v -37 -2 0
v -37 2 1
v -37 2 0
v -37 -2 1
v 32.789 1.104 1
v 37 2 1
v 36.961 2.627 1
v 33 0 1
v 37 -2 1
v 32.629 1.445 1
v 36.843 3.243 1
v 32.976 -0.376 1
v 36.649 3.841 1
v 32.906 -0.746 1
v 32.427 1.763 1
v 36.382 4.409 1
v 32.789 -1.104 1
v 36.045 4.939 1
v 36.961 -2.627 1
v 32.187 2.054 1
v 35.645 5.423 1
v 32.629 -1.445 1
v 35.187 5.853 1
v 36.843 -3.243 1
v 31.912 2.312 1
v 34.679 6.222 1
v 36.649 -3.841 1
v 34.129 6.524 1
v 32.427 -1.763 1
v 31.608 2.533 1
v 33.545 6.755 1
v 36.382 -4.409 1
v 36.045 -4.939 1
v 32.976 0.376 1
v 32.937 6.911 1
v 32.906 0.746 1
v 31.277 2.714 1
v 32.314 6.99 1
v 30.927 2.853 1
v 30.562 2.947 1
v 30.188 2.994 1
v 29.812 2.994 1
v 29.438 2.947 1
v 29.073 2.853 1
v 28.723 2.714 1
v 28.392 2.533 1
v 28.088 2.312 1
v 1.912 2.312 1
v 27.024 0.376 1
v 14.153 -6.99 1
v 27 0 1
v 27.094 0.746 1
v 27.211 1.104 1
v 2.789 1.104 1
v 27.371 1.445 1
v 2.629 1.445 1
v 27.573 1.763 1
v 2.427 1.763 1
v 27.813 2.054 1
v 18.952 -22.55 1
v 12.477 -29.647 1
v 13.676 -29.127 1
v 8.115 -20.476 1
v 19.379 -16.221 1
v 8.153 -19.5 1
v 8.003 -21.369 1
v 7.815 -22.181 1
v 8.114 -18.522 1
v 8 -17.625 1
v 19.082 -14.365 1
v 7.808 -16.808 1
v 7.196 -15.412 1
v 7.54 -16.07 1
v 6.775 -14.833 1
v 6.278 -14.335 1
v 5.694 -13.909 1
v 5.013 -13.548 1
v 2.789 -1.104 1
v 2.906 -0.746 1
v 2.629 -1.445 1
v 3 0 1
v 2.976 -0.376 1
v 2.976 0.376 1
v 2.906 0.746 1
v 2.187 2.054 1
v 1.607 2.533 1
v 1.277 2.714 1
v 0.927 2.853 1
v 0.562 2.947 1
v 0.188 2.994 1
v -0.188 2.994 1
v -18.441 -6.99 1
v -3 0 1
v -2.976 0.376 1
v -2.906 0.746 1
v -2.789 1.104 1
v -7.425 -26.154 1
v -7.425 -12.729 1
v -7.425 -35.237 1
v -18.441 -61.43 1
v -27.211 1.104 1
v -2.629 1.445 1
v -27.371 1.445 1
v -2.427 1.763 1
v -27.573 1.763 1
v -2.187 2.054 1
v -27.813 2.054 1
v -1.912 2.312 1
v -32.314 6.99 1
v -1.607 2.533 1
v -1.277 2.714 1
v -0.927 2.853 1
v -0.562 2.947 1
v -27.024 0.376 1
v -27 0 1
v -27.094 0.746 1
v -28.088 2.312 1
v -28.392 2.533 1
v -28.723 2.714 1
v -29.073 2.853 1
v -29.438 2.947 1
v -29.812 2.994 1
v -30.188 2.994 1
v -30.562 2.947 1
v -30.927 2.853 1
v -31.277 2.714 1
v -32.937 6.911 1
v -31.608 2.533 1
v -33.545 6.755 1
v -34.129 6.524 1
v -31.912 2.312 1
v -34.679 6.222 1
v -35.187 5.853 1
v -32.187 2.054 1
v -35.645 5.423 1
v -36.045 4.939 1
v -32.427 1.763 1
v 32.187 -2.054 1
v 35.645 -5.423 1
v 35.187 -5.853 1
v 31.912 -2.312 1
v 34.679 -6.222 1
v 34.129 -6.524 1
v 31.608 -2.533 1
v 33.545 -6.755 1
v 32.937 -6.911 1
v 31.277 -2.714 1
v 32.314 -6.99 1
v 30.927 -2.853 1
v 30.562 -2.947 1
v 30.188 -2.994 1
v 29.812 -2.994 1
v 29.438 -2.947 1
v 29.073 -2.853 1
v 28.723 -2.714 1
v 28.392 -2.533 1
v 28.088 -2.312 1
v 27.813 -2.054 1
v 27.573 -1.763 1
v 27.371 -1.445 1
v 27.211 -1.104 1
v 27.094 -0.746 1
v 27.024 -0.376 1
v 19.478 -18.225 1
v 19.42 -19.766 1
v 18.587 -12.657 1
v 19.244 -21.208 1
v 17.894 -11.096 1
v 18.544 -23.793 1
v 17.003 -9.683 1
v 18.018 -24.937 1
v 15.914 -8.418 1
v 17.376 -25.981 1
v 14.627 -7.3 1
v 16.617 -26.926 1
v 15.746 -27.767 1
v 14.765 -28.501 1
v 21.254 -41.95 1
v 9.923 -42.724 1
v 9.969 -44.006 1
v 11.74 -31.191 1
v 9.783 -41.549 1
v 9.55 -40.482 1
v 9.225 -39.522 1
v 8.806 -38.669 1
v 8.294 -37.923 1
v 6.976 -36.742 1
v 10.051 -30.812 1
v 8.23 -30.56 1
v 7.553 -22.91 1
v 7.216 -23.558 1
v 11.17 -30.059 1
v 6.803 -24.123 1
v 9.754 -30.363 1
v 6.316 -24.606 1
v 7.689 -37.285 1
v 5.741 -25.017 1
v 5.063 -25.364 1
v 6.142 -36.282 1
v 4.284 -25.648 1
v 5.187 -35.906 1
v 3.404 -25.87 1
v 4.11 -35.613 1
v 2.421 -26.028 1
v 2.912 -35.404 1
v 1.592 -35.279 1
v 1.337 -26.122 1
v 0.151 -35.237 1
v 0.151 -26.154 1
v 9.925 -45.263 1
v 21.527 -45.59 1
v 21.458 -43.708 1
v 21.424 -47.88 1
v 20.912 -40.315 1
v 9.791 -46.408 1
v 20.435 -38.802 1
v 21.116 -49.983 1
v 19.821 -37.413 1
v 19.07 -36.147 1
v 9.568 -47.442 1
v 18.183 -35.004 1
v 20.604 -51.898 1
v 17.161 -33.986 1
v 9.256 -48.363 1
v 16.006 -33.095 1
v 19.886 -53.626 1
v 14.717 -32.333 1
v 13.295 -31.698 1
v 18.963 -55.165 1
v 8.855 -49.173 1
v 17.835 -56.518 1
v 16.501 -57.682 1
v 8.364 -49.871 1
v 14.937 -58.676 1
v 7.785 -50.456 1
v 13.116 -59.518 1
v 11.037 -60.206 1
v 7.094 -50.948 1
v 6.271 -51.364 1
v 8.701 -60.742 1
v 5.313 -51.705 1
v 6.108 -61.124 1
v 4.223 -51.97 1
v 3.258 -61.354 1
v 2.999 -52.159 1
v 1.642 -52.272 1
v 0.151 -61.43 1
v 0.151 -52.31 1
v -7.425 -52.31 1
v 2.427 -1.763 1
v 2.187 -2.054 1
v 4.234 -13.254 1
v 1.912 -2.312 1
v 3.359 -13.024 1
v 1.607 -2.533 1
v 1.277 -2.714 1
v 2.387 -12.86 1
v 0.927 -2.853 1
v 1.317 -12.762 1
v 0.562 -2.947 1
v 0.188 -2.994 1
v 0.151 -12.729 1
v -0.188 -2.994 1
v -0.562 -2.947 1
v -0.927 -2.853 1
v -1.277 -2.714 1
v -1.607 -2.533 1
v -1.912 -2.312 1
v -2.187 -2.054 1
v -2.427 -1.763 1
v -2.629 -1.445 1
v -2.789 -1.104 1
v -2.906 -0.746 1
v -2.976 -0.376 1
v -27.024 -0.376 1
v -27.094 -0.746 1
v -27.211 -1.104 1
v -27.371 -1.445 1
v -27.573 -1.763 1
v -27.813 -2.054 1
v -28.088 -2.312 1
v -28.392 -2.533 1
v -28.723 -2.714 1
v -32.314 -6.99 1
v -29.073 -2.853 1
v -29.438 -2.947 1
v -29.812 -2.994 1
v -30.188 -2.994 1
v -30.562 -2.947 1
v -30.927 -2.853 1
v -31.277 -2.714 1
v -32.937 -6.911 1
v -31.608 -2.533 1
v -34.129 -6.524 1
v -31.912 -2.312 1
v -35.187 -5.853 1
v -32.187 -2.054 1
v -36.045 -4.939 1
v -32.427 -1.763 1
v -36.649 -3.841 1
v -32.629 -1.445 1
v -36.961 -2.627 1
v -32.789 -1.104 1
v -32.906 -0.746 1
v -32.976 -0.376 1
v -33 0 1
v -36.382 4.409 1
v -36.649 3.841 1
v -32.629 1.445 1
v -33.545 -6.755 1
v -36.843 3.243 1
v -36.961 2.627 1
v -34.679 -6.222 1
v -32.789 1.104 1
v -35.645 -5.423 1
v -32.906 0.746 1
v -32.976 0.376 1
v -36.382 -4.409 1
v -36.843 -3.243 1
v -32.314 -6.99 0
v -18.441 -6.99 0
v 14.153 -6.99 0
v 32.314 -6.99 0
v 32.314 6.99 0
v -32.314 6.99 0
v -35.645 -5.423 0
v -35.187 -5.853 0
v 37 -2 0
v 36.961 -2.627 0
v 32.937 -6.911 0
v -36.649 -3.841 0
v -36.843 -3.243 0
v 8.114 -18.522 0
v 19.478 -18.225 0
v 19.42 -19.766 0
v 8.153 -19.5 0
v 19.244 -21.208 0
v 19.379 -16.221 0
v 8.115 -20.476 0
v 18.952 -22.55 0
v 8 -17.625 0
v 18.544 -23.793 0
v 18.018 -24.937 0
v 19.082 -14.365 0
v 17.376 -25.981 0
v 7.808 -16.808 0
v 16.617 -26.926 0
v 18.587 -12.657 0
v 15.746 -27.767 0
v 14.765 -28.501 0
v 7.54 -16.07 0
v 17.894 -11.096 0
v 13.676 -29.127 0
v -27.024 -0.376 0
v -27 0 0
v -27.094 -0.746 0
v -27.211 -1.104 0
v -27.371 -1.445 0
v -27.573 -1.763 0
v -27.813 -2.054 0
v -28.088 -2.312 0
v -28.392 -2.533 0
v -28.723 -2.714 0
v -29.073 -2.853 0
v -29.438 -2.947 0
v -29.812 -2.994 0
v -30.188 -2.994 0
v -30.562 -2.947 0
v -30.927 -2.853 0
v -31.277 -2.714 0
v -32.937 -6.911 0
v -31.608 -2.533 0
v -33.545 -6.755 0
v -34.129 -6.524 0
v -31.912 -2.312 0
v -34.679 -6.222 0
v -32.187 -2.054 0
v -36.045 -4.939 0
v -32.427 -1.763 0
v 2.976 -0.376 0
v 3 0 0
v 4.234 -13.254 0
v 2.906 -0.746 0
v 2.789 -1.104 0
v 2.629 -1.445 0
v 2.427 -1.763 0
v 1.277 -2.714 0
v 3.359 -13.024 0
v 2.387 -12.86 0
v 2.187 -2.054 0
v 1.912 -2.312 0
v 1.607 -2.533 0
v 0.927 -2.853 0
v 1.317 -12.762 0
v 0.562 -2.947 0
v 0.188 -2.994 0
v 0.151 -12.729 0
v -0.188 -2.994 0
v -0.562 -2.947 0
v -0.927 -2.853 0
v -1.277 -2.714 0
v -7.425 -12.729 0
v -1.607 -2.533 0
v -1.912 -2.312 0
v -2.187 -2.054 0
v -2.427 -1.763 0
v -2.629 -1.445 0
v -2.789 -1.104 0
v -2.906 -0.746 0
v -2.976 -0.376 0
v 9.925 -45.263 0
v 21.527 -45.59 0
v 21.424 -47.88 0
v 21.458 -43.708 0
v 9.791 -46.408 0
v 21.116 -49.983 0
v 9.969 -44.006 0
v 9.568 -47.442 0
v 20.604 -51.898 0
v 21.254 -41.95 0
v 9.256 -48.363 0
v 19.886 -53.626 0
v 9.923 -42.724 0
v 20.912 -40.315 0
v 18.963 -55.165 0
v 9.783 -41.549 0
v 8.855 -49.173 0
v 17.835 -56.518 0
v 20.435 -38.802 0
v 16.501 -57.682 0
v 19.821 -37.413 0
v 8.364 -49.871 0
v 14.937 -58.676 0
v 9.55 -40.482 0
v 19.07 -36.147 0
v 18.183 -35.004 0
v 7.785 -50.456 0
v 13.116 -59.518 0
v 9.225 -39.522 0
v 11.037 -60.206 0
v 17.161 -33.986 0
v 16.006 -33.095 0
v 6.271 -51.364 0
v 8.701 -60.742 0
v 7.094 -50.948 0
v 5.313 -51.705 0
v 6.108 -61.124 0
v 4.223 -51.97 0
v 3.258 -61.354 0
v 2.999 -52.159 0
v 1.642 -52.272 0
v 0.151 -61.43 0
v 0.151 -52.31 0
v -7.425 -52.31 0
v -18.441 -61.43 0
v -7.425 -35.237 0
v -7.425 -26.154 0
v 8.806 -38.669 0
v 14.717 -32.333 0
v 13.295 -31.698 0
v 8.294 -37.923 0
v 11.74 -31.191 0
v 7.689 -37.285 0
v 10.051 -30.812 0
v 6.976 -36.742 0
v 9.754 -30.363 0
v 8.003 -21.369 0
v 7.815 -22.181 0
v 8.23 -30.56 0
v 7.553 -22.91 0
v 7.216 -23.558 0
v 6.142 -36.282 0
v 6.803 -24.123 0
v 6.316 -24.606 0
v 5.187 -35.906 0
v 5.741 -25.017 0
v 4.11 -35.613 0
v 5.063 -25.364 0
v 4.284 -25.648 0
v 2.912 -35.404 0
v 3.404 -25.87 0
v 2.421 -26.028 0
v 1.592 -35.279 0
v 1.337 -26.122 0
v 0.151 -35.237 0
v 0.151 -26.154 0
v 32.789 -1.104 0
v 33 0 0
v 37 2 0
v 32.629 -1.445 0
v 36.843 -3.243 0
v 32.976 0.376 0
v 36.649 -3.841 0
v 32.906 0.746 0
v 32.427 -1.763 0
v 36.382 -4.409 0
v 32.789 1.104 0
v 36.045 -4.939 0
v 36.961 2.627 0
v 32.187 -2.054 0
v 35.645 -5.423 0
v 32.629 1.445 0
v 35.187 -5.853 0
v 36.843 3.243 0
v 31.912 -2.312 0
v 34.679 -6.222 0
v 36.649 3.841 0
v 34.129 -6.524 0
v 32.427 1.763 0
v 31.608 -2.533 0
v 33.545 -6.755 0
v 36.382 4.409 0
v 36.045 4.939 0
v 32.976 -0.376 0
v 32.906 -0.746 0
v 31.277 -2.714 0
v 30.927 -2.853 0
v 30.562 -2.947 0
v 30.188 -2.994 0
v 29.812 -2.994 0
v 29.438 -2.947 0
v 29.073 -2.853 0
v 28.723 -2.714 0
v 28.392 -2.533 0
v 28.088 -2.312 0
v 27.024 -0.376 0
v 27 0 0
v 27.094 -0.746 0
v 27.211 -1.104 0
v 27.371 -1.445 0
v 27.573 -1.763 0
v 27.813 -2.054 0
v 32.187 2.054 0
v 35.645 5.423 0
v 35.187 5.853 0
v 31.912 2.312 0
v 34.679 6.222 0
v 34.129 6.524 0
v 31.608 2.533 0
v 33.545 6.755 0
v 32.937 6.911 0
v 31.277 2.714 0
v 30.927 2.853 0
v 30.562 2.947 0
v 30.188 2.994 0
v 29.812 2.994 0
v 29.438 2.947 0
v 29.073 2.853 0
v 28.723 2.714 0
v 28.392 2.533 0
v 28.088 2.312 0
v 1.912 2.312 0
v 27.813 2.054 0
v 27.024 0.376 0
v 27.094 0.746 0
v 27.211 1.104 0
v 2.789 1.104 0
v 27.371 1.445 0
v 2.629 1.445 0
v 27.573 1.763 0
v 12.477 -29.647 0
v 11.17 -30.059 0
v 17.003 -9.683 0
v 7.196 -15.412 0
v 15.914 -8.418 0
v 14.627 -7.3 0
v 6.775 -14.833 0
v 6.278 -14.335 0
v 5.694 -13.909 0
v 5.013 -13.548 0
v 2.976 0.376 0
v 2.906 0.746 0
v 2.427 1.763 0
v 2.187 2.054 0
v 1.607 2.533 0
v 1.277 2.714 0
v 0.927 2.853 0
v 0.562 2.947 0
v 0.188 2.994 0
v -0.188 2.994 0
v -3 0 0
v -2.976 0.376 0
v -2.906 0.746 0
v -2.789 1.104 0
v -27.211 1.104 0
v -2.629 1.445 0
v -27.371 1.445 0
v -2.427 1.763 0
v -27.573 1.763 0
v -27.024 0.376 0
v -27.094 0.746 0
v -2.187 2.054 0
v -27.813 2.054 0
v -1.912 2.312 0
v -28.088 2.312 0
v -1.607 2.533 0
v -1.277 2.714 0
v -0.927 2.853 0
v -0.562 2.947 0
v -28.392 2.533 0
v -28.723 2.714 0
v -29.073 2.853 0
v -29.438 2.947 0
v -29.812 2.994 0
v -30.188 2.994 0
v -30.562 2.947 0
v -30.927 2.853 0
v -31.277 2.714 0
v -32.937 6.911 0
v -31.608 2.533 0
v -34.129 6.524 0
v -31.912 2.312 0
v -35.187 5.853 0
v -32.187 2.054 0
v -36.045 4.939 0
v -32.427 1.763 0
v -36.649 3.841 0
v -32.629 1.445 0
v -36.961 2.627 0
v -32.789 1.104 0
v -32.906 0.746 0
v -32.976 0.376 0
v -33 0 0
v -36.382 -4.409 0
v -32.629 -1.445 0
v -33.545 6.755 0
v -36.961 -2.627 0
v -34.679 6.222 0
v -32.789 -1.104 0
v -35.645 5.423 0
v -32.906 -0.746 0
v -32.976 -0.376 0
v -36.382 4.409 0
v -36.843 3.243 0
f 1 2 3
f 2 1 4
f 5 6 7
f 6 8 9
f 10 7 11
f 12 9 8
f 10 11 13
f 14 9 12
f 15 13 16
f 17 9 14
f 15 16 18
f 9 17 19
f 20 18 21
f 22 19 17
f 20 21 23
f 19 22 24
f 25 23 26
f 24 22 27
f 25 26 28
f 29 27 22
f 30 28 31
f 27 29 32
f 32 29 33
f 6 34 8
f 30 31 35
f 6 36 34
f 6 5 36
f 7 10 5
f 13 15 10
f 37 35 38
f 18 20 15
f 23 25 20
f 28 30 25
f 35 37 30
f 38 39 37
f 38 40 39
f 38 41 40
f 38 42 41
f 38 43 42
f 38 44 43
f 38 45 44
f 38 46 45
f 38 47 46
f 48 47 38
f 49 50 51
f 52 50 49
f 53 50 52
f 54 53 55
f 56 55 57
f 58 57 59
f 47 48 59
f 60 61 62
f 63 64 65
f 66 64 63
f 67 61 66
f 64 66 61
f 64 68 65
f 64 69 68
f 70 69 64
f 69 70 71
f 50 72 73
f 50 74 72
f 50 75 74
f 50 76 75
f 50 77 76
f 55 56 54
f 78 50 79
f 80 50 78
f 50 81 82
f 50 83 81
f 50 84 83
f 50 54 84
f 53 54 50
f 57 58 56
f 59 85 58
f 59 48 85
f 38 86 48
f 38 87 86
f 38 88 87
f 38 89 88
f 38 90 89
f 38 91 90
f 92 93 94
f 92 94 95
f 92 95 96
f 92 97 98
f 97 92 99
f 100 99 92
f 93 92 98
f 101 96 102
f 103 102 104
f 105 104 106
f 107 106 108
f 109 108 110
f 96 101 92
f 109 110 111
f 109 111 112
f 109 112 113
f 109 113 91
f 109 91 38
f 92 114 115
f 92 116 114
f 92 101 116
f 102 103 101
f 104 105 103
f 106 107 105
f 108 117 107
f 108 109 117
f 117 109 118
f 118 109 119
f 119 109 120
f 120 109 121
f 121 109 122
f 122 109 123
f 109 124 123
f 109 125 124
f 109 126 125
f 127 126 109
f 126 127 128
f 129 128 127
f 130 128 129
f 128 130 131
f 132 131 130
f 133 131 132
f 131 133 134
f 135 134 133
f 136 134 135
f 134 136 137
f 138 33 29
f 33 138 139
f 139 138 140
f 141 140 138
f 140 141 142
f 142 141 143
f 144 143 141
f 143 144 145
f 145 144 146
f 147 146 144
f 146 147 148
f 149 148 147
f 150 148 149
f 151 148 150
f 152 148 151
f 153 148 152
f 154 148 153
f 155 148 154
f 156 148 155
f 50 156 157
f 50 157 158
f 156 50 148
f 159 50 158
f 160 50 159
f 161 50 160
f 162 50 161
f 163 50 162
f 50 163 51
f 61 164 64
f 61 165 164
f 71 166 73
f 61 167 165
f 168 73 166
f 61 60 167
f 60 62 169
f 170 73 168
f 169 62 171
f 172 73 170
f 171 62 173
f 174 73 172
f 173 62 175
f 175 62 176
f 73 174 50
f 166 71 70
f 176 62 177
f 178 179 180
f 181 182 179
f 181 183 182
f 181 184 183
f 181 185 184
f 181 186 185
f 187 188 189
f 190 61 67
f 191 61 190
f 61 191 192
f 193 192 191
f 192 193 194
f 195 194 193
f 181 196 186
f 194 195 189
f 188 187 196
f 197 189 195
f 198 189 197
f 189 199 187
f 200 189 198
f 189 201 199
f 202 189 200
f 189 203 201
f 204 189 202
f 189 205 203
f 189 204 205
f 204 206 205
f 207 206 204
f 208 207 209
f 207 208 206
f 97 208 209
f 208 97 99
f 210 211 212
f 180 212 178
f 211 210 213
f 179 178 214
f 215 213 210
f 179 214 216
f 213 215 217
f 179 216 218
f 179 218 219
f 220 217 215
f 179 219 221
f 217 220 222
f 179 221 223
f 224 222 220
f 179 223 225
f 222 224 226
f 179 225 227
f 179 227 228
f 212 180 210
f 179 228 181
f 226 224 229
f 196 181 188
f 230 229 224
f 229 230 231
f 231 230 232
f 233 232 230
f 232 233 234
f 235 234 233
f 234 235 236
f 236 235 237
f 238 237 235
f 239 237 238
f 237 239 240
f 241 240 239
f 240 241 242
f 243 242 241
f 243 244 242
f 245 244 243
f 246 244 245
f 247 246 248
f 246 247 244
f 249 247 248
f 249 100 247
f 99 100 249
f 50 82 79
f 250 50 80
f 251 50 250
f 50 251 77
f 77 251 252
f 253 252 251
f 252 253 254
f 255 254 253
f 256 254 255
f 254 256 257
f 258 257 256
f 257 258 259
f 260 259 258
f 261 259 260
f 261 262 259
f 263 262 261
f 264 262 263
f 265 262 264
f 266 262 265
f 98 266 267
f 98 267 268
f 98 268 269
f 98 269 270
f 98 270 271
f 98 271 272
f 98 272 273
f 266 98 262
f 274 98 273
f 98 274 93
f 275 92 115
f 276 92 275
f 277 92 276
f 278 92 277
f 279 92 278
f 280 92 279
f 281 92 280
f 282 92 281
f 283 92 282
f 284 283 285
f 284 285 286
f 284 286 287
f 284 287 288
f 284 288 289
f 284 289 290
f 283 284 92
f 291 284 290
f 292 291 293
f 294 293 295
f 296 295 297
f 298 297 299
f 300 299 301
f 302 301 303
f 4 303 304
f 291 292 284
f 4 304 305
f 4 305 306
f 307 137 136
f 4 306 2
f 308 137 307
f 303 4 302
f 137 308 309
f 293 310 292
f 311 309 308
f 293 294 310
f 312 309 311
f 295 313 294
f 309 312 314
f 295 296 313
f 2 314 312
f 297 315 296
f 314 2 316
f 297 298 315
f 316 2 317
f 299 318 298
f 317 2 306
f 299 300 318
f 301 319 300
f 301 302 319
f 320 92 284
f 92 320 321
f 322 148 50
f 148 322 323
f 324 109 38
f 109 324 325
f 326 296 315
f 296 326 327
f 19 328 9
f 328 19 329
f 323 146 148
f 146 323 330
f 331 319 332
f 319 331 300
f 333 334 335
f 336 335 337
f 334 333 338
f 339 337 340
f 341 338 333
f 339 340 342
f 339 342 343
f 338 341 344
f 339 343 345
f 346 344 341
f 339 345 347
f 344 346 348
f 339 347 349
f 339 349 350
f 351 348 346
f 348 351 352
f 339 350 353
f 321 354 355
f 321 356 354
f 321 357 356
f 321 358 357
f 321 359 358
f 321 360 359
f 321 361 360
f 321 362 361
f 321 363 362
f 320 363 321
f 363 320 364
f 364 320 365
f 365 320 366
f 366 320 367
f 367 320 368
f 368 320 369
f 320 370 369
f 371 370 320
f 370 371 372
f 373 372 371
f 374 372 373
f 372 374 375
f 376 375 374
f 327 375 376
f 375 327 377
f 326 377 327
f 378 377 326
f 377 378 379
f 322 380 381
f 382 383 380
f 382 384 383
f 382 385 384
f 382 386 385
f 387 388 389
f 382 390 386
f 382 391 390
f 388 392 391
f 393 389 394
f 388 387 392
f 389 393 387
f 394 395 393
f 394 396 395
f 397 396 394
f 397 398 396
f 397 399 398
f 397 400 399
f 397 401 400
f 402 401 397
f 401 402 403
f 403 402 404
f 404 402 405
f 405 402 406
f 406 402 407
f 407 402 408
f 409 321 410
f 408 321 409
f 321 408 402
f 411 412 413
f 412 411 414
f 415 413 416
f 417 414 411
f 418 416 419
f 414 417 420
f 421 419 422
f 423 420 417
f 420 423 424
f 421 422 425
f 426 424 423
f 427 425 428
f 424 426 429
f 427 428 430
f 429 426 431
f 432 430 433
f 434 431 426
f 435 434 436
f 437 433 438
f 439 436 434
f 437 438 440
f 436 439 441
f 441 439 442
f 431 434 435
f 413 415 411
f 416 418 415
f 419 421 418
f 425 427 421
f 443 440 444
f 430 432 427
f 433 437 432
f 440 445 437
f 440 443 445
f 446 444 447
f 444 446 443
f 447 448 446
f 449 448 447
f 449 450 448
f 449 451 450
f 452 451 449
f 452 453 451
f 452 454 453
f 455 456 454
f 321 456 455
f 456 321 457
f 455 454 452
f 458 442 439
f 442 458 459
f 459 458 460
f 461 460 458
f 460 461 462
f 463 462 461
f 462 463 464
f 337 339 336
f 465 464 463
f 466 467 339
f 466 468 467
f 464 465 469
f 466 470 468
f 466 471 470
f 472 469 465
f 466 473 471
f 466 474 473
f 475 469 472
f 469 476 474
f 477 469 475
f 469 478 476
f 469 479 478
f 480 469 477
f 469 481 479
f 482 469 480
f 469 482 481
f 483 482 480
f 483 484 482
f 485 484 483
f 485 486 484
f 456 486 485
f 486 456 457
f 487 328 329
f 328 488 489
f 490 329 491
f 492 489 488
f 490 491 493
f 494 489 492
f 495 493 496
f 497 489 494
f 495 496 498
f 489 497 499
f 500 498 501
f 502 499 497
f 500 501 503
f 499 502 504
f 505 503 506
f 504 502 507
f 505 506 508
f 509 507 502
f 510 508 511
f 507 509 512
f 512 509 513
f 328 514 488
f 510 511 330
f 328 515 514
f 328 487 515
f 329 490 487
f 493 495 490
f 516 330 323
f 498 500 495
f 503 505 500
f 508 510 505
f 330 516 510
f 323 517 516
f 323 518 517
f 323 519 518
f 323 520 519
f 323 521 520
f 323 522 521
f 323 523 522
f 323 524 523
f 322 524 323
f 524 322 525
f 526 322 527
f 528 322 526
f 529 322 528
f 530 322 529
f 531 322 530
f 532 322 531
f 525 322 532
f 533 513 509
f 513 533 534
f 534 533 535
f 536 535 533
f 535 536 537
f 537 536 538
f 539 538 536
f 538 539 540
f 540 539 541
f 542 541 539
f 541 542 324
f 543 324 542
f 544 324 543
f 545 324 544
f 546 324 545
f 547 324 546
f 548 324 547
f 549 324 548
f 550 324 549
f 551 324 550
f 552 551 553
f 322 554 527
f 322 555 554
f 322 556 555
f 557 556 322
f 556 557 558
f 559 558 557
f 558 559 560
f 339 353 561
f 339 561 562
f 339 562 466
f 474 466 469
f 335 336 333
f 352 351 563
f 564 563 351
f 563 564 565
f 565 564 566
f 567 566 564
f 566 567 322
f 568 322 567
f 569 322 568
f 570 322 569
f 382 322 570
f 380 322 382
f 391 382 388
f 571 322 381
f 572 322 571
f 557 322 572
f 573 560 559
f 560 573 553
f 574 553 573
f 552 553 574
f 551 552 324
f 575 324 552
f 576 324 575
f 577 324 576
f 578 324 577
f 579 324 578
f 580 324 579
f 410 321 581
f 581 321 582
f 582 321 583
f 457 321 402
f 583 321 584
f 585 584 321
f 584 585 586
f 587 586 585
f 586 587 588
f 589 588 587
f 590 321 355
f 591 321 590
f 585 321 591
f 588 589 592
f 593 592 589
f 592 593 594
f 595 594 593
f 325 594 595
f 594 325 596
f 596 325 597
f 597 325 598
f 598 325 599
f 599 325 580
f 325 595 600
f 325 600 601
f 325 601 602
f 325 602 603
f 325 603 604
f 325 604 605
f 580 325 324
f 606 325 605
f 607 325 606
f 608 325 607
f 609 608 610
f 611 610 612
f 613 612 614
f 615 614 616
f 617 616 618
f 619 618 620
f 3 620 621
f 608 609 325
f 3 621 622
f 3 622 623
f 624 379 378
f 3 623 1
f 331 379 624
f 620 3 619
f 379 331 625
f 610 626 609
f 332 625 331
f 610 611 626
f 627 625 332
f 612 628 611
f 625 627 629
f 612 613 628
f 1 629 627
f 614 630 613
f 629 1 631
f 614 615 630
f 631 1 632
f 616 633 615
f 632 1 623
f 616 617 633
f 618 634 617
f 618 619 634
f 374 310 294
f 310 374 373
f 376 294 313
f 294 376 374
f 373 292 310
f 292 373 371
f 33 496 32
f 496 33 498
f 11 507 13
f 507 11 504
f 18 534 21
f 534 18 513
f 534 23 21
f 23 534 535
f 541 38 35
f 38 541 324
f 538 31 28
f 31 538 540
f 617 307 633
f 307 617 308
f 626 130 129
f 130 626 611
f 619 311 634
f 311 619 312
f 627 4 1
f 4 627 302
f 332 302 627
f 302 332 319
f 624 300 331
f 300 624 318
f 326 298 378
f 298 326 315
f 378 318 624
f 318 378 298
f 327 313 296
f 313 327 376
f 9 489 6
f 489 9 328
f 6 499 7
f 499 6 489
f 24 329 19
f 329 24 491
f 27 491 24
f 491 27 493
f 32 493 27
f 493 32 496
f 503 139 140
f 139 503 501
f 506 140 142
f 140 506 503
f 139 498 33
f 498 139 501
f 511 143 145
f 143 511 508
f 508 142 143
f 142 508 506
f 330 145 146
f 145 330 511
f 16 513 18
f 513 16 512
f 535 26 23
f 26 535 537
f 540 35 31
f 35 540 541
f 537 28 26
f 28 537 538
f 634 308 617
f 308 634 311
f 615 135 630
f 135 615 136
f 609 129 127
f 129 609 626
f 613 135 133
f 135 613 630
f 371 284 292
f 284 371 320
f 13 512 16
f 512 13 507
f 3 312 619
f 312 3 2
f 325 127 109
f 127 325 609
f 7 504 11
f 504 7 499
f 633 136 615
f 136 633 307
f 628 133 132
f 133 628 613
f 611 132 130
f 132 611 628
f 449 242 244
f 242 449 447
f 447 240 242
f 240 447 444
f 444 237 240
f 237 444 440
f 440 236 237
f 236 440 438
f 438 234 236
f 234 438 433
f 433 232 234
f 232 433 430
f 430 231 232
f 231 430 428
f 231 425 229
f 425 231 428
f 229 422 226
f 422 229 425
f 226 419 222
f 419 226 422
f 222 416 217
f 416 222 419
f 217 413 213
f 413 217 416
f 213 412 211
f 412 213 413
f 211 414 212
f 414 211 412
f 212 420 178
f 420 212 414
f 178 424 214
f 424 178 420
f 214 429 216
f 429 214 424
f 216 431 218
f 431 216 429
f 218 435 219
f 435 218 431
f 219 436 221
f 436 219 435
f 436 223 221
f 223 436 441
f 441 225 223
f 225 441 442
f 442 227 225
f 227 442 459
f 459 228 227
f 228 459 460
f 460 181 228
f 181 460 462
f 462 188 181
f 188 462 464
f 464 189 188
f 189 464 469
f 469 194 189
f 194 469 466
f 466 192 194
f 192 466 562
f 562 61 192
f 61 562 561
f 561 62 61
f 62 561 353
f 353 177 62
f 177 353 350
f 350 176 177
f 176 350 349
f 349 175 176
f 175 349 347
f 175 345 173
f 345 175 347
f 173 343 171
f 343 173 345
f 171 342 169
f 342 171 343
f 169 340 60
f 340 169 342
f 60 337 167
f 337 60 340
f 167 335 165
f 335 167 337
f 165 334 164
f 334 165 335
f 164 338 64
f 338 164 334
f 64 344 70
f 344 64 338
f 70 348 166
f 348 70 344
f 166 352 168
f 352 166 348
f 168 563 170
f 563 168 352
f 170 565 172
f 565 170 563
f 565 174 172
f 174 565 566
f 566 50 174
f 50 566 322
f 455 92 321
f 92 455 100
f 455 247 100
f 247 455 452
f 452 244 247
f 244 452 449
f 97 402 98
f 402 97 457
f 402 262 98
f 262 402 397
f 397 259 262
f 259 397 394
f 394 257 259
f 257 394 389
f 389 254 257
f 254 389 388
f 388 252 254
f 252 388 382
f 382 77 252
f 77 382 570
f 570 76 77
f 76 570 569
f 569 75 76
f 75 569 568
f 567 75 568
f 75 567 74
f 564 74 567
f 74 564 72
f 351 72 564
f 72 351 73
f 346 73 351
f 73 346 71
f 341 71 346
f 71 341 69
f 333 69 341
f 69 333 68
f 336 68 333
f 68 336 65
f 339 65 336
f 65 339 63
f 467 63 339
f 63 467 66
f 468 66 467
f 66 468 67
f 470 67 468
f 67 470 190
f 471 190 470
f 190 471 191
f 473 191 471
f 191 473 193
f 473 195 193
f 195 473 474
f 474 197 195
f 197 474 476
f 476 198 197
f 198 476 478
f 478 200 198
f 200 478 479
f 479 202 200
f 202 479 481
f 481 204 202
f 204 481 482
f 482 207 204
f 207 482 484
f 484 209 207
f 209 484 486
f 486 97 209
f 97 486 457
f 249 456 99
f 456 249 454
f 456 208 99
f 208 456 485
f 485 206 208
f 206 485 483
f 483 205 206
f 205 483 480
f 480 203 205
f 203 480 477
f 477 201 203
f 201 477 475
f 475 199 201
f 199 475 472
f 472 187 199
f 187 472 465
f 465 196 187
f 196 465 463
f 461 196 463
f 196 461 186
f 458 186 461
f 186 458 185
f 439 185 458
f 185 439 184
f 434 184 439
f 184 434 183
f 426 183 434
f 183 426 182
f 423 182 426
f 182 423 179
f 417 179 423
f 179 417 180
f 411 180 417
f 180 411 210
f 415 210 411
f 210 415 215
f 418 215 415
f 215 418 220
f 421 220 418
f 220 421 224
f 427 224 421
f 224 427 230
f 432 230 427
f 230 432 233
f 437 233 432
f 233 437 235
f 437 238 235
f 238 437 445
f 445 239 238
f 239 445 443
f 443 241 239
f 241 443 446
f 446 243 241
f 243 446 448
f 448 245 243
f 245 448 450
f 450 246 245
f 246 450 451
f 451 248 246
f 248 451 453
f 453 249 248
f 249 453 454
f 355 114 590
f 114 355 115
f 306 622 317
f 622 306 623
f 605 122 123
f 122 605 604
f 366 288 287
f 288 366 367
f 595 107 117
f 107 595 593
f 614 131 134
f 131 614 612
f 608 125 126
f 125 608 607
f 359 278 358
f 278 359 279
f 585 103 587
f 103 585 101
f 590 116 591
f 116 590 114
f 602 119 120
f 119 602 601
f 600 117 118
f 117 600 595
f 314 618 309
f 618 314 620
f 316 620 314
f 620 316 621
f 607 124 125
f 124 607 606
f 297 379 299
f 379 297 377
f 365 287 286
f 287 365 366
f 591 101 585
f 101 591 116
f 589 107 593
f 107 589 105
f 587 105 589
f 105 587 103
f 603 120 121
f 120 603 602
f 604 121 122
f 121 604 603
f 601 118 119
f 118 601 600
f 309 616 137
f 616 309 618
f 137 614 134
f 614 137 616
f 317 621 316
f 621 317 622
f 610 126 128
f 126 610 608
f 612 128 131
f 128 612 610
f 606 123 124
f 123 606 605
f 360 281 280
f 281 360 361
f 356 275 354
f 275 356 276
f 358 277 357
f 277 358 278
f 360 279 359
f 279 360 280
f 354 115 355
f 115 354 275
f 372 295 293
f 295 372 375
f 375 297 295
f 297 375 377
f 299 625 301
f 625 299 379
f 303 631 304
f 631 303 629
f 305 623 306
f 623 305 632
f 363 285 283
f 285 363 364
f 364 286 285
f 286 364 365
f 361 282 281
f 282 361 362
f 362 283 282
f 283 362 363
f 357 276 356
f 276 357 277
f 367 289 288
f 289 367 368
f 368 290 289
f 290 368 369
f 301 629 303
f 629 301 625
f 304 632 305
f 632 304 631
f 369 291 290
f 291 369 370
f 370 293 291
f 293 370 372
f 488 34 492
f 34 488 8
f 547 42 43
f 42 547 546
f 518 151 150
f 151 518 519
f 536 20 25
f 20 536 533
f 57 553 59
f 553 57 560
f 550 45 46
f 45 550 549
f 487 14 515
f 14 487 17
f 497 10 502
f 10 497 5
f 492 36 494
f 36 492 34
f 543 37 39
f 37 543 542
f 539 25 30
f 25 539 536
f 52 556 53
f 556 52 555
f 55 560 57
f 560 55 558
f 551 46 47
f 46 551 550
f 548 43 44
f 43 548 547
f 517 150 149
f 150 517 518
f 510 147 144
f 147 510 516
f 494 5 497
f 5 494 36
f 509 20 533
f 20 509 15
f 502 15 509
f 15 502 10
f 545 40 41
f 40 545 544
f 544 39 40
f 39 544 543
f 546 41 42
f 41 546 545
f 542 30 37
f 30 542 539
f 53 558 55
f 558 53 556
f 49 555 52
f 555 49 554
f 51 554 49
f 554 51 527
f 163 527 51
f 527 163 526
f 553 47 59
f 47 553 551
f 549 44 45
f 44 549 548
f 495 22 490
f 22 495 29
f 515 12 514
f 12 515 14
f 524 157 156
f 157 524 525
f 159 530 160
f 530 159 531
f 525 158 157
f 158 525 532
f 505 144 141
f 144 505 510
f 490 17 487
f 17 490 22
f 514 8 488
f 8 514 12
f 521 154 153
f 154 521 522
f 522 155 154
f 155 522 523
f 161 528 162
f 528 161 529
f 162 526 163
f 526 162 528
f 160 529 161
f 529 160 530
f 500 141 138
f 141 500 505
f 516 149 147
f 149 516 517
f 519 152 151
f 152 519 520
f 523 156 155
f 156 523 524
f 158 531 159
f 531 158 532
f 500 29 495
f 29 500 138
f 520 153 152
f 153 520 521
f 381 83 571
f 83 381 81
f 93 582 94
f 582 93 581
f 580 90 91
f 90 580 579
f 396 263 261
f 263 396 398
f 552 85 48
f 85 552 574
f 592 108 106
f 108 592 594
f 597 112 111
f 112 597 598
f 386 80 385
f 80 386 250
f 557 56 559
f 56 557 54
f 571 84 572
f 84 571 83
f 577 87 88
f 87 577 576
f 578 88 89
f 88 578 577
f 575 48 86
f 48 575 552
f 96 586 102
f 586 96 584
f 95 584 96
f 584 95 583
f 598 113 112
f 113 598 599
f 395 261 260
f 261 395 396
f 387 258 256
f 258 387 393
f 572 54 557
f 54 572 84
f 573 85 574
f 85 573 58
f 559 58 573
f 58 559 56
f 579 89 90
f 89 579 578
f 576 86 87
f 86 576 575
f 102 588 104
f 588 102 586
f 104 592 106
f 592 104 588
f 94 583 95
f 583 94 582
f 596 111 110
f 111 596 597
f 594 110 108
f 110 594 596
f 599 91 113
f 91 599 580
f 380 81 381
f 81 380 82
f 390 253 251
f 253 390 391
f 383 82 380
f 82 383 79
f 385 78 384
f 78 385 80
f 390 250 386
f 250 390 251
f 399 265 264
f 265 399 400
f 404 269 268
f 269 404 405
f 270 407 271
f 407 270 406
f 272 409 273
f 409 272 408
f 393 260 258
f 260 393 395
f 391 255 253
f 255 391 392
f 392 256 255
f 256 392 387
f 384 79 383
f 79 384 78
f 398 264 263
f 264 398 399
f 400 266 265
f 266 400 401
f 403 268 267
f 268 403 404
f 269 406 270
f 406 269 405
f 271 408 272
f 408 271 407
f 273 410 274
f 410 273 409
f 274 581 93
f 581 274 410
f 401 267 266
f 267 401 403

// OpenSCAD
$fn = 50;


difference() {
	union() {
		translate(v = [0, 0, 0]) {
			rotate(a = [0, 0, 0]) {
				hull() {
					translate(v = [-32.0000000000, 2.0000000000, 0]) {
						rotate(a = [0, 0, 0]) {
							translate(v = [0, 0, 0]) {
								rotate(a = [0, 0, 0]) {
									cylinder(h = 1, r = 5);
								}
							}
						}
					}
					translate(v = [32.0000000000, 2.0000000000, 0]) {
						rotate(a = [0, 0, 0]) {
							translate(v = [0, 0, 0]) {
								rotate(a = [0, 0, 0]) {
									cylinder(h = 1, r = 5);
								}
							}
						}
					}
					translate(v = [-32.0000000000, -2.0000000000, 0]) {
						rotate(a = [0, 0, 0]) {
							translate(v = [0, 0, 0]) {
								rotate(a = [0, 0, 0]) {
									cylinder(h = 1, r = 5);
								}
							}
						}
					}
					translate(v = [32.0000000000, -2.0000000000, 0]) {
						rotate(a = [0, 0, 0]) {
							translate(v = [0, 0, 0]) {
								rotate(a = [0, 0, 0]) {
									cylinder(h = 1, r = 5);
								}
							}
						}
					}
				}
			}
		}
		translate(v = [0, -5, 0]) {
			rotate(a = [0, 0, 0]) {
				linear_extrude(height = 1) {
					text(font = "DejaVu Sans Mono:style=Bold", halign = "center", size = 57.0000000000, text = "B", valign = "top");
				}
			}
		}
	}
	union() {
		translate(v = [-30.0000000000, 0.0000000000, -125.0000000000]) {
			rotate(a = [0, 0, 0]) {
				cylinder(h = 250, r = 3.0000000000);
			}
		}
		translate(v = [30.0000000000, 0.0000000000, -125.0000000000]) {
			rotate(a = [0, 0, 0]) {
				cylinder(h = 250, r = 3.0000000000);
			}
		}
		translate(v = [30.0000000000, 0.0000000000, -125.0000000000]) {
			rotate(a = [0, 0, 0]) {
				cylinder(h = 250, r = 3.0000000000);
			}
		}
		translate(v = [0, 0, -125.0000000000]) {
			rotate(a = [0, 0, 0]) {
				cylinder(h = 250, r = 3.0000000000);
			}
		}
	}
}
